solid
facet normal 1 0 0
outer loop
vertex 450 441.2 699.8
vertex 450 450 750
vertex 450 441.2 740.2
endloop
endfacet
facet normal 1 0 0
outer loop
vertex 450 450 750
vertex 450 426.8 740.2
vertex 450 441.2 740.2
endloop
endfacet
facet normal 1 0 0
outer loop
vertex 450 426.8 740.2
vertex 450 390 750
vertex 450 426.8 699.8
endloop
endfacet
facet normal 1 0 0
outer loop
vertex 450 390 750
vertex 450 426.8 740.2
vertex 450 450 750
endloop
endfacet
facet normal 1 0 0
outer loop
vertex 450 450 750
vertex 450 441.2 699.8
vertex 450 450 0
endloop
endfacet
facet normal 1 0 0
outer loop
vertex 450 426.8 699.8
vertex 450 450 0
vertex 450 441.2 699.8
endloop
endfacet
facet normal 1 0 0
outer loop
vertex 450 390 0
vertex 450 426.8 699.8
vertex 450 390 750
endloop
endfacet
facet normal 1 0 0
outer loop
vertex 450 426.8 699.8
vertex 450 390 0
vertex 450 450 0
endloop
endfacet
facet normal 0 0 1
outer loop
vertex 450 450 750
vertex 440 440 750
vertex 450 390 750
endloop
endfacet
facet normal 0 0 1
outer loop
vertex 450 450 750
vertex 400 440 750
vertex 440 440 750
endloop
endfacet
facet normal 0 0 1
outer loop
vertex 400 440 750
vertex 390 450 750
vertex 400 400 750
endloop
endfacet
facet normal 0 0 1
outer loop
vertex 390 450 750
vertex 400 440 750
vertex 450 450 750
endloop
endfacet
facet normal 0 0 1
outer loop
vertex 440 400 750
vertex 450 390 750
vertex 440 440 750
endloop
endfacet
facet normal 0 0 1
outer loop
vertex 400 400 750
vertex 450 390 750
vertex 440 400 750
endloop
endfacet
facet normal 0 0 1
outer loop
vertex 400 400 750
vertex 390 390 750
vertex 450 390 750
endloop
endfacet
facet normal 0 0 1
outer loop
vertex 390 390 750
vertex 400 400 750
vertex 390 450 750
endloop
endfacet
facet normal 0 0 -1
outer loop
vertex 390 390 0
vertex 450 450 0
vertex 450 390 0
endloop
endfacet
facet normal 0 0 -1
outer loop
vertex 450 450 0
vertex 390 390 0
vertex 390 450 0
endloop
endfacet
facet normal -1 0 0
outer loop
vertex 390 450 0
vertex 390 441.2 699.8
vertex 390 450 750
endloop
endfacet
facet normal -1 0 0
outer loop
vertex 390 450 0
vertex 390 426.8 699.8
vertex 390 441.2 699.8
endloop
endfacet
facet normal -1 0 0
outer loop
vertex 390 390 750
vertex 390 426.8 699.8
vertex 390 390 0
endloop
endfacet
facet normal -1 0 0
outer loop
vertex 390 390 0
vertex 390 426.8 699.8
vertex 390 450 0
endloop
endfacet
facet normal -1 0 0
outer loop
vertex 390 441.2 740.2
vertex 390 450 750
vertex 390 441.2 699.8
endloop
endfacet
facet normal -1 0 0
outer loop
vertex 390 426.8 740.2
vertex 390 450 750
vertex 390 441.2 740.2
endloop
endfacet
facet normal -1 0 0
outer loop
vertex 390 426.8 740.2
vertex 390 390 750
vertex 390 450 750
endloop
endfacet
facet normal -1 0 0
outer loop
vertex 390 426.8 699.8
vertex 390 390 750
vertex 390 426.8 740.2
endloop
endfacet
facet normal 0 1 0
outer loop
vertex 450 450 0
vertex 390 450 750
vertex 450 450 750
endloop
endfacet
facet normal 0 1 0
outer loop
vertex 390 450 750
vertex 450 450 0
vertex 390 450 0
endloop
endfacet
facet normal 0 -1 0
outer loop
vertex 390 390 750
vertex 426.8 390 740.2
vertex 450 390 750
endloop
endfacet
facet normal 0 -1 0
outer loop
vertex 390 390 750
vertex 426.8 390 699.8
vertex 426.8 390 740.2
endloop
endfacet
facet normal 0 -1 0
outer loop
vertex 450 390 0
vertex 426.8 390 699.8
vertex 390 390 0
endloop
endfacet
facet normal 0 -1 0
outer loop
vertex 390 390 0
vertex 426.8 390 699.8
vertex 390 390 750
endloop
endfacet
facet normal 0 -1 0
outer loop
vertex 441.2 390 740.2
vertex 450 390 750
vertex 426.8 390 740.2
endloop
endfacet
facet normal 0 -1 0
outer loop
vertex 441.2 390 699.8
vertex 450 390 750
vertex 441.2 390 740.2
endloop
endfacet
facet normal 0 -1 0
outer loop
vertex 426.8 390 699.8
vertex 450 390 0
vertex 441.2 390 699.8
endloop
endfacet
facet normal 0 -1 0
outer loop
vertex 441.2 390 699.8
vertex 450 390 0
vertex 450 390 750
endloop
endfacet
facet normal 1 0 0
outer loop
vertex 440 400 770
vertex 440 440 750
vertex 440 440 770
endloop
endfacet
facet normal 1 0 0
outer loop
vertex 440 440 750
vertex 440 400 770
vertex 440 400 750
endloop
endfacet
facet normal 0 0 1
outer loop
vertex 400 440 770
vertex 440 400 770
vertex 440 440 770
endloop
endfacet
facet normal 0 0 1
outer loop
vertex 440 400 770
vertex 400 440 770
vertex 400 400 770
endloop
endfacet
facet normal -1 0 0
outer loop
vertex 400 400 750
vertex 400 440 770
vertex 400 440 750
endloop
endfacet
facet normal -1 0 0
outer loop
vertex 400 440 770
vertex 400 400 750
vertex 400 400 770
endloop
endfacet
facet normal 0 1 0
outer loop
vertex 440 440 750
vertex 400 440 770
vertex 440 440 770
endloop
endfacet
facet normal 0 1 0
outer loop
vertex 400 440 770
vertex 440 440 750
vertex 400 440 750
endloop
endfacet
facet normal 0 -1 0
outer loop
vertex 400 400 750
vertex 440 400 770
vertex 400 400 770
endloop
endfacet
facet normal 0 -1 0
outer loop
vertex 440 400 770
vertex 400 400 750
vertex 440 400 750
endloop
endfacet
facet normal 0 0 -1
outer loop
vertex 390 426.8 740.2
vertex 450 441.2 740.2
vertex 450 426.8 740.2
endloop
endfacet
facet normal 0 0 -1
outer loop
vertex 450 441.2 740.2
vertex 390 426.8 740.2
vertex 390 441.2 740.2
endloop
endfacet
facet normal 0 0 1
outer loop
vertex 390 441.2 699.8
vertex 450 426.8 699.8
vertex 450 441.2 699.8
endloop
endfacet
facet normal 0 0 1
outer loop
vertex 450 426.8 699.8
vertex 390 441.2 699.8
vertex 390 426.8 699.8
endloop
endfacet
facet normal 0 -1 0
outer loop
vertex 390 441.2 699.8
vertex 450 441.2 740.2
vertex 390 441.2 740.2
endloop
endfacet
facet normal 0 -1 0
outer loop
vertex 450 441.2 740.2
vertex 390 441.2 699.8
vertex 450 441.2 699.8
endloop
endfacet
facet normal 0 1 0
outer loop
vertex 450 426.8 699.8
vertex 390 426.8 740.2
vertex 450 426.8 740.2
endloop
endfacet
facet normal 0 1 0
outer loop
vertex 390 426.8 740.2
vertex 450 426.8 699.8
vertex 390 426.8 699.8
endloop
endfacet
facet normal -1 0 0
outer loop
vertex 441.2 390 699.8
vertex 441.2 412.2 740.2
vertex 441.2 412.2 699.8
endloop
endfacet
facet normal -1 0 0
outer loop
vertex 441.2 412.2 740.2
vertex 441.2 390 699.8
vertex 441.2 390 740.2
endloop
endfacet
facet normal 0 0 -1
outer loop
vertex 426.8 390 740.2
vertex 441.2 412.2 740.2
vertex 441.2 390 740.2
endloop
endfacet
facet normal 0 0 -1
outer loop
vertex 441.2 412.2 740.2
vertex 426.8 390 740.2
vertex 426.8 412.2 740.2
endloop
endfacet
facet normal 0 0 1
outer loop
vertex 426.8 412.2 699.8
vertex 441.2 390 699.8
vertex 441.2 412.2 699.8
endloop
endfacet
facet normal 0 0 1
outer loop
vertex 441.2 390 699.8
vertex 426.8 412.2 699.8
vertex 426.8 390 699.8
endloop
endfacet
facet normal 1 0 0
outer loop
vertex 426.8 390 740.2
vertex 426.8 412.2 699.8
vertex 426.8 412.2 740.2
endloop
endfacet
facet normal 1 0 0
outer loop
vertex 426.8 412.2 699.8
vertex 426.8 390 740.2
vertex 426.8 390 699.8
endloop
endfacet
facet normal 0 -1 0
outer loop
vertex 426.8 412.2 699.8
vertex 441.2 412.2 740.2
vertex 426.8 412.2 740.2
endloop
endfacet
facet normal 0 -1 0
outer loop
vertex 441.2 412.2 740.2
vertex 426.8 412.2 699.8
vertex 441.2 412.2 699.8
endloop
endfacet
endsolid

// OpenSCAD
// file: parts.scad
$fn=40;

// ---- 桌腿 ----

module leg(){
  difference(){
    union(){
      translate([390.000,390.000,0.000]) cube([60.000,60.000,750.000]);
      translate([400.000,400.000,750.000]) cube([40.000,40.000,20.000]);
    }
    // 牙板透榫槽（沿 +x，+y 侧牙板 A 端穿入）
    translate([389.000,426.800,699.800]) cube([62.000,14.400,40.400]);
    // 牙板闷榫槽（沿 +y，+x 侧牙板 B 端）
    translate([426.800,389.000,699.800]) cube([14.400,23.200,40.400]);
  }
}

// ---- 边框 ----

module rail(){
  difference(){
    union(){
      translate([0,0,750]) linear_extrude(height=50) polygon(points=[[-370,370],[370,370],[450.0,450.0],[-450.0,450.0]]);
      translate([420.607,399.393,779.0]) rotate([0,0,-45]) cube([34,40,10],center=true);
    }
    // 面板槽：全长开通至 45° 端面（角部两框的槽合起来成 L 形）
    translate([-450.000,370.000,785.800]) cube([900.000,14.000,6.400]);
    // 腿顶榫卯（两端各半，合起来 40x40x20）
    translate([399.800,399.800,750.000]) cube([40.400,40.400,20.400]);
    translate([-440.200,399.800,750.000]) cube([40.400,40.400,20.400]);
    // 格角暗榫卯
    translate([-398.545,421.455,779.0]) rotate([0,0,45]) cube([34.4,40.4,10.4],center=true);
    // 竹销孔：+x 端穿暗榫，-x 端穿本体
    translate([418,384,750]) cylinder(h=34,r=4.0,$fn=40);
    translate([-384,418,750]) cylinder(h=34,r=4.0,$fn=40);
  }
}

// ---- 牙板 ----

module apron(){
  difference(){
    union(){
      translate([-390.000,424.000,680.000]) cube([780.000,20.000,70.000]);
      // A 端：透榫（390..460）
      translate([390.000,427.000,700.000]) cube([70.000,14.000,40.000]);
      // B 端：闷榫（-412..-390）
      translate([-412.000,427.000,700.000]) cube([22.000,14.000,40.000]);
    }
    hull(){ translate([375.000,423.500,680.000]) cube([15.000,21.000,0.200]); translate([389.800,423.500,680.000]) cube([0.200,21.000,15.000]); }
    hull(){ translate([-390.000,423.500,680.000]) cube([15.000,21.000,0.200]); translate([-390.000,423.500,680.000]) cube([0.200,21.000,15.000]); }
    // 透榫楔槽（横槽，撑开榫头上下两片）
    translate([428.000,426.900,718.400]) cube([32.200,14.200,3.200]);
  }
}

// ---- 面板-边板 ----

module panel_outer(){
  difference(){
    union(){
      translate([-365.000,-365.000,778.000]) cube([730.000,244.000,22.000]);
      translate([0,0,786]) linear_extrude(height=6) polygon(points=[[-379,-121],[-379,-377],[-377,-379],[377,-379],[379,-377],[379,-121],[365,-121],[365,-365],[-365,-365],[-365,-121]]);
    }
    // 内侧龙凤榫槽（向板内 8 深：y -129..-121）
    translate([-365.000,-129.000,785.800]) cube([730.000,8.000,6.400]);
    // 穿带燕尾槽
    hull(){ translate([-259.200,-365.000,778.000]) cube([30.400,244.000,0.100]); translate([-266.200,-365.000,783.900]) cube([44.400,244.000,0.100]); }
    hull(){ translate([-15.200,-365.000,778.000]) cube([30.400,244.000,0.100]); translate([-22.200,-365.000,783.900]) cube([44.400,244.000,0.100]); }
    hull(){ translate([228.800,-365.000,778.000]) cube([30.400,244.000,0.100]); translate([221.800,-365.000,783.900]) cube([44.400,244.000,0.100]); }
  }
}

// ---- 面板-中板 ----

module panel_middle(){
  difference(){
    union(){
      translate([-365.000,-121.000,778.000]) cube([730.000,242.000,22.000]);
      translate([365.000,-121.000,786.000]) cube([14.000,242.000,6.000]);
      translate([-379.000,-121.000,786.000]) cube([14.000,242.000,6.000]);
    }
    // 两侧龙凤榫槽（各向板内 8 深）
    translate([-365.000,-121.000,785.800]) cube([730.000,8.000,6.400]);
    translate([-365.000,113.000,785.800]) cube([730.000,8.000,6.400]);
    hull(){ translate([-259.200,-121.000,778.000]) cube([30.400,242.000,0.100]); translate([-266.200,-121.000,783.900]) cube([44.400,242.000,0.100]); }
    hull(){ translate([-15.200,-121.000,778.000]) cube([30.400,242.000,0.100]); translate([-22.200,-121.000,783.900]) cube([44.400,242.000,0.100]); }
    hull(){ translate([228.800,-121.000,778.000]) cube([30.400,242.000,0.100]); translate([221.800,-121.000,783.900]) cube([44.400,242.000,0.100]); }
  }
}

// ---- 穿带 ----

module cleat(){
  union(){
    translate([-20.000,-363.000,752.000]) cube([40.000,726.000,26.000]);
    hull(){
      translate([-15.000,-363.000,777.900]) cube([30.000,726.000,0.050]);
      translate([-22.000,-363.000,783.800]) cube([44.000,726.000,0.100]);
    }
  }
}

// ---- 穿簧 ----
module spline(){ translate([-360.000,-7.800,786.100]) cube([720.000,15.600,5.800]); }
// ---- 木楔 ----
module wedge(){ hull(){ translate([435.000,427.400,719.400]) cube([1.000,13.200,1.200]); translate([467.000,427.400,718.500]) cube([1.000,13.200,3.000]); } }
// ---- 竹销 ----
module pin(){ translate([0,0,750]) cylinder(h=34,r=4.0,$fn=40); }
// main file
// 桌腿（0° 基准件，位于整机坐标系中）
include <parts.scad>
leg();
